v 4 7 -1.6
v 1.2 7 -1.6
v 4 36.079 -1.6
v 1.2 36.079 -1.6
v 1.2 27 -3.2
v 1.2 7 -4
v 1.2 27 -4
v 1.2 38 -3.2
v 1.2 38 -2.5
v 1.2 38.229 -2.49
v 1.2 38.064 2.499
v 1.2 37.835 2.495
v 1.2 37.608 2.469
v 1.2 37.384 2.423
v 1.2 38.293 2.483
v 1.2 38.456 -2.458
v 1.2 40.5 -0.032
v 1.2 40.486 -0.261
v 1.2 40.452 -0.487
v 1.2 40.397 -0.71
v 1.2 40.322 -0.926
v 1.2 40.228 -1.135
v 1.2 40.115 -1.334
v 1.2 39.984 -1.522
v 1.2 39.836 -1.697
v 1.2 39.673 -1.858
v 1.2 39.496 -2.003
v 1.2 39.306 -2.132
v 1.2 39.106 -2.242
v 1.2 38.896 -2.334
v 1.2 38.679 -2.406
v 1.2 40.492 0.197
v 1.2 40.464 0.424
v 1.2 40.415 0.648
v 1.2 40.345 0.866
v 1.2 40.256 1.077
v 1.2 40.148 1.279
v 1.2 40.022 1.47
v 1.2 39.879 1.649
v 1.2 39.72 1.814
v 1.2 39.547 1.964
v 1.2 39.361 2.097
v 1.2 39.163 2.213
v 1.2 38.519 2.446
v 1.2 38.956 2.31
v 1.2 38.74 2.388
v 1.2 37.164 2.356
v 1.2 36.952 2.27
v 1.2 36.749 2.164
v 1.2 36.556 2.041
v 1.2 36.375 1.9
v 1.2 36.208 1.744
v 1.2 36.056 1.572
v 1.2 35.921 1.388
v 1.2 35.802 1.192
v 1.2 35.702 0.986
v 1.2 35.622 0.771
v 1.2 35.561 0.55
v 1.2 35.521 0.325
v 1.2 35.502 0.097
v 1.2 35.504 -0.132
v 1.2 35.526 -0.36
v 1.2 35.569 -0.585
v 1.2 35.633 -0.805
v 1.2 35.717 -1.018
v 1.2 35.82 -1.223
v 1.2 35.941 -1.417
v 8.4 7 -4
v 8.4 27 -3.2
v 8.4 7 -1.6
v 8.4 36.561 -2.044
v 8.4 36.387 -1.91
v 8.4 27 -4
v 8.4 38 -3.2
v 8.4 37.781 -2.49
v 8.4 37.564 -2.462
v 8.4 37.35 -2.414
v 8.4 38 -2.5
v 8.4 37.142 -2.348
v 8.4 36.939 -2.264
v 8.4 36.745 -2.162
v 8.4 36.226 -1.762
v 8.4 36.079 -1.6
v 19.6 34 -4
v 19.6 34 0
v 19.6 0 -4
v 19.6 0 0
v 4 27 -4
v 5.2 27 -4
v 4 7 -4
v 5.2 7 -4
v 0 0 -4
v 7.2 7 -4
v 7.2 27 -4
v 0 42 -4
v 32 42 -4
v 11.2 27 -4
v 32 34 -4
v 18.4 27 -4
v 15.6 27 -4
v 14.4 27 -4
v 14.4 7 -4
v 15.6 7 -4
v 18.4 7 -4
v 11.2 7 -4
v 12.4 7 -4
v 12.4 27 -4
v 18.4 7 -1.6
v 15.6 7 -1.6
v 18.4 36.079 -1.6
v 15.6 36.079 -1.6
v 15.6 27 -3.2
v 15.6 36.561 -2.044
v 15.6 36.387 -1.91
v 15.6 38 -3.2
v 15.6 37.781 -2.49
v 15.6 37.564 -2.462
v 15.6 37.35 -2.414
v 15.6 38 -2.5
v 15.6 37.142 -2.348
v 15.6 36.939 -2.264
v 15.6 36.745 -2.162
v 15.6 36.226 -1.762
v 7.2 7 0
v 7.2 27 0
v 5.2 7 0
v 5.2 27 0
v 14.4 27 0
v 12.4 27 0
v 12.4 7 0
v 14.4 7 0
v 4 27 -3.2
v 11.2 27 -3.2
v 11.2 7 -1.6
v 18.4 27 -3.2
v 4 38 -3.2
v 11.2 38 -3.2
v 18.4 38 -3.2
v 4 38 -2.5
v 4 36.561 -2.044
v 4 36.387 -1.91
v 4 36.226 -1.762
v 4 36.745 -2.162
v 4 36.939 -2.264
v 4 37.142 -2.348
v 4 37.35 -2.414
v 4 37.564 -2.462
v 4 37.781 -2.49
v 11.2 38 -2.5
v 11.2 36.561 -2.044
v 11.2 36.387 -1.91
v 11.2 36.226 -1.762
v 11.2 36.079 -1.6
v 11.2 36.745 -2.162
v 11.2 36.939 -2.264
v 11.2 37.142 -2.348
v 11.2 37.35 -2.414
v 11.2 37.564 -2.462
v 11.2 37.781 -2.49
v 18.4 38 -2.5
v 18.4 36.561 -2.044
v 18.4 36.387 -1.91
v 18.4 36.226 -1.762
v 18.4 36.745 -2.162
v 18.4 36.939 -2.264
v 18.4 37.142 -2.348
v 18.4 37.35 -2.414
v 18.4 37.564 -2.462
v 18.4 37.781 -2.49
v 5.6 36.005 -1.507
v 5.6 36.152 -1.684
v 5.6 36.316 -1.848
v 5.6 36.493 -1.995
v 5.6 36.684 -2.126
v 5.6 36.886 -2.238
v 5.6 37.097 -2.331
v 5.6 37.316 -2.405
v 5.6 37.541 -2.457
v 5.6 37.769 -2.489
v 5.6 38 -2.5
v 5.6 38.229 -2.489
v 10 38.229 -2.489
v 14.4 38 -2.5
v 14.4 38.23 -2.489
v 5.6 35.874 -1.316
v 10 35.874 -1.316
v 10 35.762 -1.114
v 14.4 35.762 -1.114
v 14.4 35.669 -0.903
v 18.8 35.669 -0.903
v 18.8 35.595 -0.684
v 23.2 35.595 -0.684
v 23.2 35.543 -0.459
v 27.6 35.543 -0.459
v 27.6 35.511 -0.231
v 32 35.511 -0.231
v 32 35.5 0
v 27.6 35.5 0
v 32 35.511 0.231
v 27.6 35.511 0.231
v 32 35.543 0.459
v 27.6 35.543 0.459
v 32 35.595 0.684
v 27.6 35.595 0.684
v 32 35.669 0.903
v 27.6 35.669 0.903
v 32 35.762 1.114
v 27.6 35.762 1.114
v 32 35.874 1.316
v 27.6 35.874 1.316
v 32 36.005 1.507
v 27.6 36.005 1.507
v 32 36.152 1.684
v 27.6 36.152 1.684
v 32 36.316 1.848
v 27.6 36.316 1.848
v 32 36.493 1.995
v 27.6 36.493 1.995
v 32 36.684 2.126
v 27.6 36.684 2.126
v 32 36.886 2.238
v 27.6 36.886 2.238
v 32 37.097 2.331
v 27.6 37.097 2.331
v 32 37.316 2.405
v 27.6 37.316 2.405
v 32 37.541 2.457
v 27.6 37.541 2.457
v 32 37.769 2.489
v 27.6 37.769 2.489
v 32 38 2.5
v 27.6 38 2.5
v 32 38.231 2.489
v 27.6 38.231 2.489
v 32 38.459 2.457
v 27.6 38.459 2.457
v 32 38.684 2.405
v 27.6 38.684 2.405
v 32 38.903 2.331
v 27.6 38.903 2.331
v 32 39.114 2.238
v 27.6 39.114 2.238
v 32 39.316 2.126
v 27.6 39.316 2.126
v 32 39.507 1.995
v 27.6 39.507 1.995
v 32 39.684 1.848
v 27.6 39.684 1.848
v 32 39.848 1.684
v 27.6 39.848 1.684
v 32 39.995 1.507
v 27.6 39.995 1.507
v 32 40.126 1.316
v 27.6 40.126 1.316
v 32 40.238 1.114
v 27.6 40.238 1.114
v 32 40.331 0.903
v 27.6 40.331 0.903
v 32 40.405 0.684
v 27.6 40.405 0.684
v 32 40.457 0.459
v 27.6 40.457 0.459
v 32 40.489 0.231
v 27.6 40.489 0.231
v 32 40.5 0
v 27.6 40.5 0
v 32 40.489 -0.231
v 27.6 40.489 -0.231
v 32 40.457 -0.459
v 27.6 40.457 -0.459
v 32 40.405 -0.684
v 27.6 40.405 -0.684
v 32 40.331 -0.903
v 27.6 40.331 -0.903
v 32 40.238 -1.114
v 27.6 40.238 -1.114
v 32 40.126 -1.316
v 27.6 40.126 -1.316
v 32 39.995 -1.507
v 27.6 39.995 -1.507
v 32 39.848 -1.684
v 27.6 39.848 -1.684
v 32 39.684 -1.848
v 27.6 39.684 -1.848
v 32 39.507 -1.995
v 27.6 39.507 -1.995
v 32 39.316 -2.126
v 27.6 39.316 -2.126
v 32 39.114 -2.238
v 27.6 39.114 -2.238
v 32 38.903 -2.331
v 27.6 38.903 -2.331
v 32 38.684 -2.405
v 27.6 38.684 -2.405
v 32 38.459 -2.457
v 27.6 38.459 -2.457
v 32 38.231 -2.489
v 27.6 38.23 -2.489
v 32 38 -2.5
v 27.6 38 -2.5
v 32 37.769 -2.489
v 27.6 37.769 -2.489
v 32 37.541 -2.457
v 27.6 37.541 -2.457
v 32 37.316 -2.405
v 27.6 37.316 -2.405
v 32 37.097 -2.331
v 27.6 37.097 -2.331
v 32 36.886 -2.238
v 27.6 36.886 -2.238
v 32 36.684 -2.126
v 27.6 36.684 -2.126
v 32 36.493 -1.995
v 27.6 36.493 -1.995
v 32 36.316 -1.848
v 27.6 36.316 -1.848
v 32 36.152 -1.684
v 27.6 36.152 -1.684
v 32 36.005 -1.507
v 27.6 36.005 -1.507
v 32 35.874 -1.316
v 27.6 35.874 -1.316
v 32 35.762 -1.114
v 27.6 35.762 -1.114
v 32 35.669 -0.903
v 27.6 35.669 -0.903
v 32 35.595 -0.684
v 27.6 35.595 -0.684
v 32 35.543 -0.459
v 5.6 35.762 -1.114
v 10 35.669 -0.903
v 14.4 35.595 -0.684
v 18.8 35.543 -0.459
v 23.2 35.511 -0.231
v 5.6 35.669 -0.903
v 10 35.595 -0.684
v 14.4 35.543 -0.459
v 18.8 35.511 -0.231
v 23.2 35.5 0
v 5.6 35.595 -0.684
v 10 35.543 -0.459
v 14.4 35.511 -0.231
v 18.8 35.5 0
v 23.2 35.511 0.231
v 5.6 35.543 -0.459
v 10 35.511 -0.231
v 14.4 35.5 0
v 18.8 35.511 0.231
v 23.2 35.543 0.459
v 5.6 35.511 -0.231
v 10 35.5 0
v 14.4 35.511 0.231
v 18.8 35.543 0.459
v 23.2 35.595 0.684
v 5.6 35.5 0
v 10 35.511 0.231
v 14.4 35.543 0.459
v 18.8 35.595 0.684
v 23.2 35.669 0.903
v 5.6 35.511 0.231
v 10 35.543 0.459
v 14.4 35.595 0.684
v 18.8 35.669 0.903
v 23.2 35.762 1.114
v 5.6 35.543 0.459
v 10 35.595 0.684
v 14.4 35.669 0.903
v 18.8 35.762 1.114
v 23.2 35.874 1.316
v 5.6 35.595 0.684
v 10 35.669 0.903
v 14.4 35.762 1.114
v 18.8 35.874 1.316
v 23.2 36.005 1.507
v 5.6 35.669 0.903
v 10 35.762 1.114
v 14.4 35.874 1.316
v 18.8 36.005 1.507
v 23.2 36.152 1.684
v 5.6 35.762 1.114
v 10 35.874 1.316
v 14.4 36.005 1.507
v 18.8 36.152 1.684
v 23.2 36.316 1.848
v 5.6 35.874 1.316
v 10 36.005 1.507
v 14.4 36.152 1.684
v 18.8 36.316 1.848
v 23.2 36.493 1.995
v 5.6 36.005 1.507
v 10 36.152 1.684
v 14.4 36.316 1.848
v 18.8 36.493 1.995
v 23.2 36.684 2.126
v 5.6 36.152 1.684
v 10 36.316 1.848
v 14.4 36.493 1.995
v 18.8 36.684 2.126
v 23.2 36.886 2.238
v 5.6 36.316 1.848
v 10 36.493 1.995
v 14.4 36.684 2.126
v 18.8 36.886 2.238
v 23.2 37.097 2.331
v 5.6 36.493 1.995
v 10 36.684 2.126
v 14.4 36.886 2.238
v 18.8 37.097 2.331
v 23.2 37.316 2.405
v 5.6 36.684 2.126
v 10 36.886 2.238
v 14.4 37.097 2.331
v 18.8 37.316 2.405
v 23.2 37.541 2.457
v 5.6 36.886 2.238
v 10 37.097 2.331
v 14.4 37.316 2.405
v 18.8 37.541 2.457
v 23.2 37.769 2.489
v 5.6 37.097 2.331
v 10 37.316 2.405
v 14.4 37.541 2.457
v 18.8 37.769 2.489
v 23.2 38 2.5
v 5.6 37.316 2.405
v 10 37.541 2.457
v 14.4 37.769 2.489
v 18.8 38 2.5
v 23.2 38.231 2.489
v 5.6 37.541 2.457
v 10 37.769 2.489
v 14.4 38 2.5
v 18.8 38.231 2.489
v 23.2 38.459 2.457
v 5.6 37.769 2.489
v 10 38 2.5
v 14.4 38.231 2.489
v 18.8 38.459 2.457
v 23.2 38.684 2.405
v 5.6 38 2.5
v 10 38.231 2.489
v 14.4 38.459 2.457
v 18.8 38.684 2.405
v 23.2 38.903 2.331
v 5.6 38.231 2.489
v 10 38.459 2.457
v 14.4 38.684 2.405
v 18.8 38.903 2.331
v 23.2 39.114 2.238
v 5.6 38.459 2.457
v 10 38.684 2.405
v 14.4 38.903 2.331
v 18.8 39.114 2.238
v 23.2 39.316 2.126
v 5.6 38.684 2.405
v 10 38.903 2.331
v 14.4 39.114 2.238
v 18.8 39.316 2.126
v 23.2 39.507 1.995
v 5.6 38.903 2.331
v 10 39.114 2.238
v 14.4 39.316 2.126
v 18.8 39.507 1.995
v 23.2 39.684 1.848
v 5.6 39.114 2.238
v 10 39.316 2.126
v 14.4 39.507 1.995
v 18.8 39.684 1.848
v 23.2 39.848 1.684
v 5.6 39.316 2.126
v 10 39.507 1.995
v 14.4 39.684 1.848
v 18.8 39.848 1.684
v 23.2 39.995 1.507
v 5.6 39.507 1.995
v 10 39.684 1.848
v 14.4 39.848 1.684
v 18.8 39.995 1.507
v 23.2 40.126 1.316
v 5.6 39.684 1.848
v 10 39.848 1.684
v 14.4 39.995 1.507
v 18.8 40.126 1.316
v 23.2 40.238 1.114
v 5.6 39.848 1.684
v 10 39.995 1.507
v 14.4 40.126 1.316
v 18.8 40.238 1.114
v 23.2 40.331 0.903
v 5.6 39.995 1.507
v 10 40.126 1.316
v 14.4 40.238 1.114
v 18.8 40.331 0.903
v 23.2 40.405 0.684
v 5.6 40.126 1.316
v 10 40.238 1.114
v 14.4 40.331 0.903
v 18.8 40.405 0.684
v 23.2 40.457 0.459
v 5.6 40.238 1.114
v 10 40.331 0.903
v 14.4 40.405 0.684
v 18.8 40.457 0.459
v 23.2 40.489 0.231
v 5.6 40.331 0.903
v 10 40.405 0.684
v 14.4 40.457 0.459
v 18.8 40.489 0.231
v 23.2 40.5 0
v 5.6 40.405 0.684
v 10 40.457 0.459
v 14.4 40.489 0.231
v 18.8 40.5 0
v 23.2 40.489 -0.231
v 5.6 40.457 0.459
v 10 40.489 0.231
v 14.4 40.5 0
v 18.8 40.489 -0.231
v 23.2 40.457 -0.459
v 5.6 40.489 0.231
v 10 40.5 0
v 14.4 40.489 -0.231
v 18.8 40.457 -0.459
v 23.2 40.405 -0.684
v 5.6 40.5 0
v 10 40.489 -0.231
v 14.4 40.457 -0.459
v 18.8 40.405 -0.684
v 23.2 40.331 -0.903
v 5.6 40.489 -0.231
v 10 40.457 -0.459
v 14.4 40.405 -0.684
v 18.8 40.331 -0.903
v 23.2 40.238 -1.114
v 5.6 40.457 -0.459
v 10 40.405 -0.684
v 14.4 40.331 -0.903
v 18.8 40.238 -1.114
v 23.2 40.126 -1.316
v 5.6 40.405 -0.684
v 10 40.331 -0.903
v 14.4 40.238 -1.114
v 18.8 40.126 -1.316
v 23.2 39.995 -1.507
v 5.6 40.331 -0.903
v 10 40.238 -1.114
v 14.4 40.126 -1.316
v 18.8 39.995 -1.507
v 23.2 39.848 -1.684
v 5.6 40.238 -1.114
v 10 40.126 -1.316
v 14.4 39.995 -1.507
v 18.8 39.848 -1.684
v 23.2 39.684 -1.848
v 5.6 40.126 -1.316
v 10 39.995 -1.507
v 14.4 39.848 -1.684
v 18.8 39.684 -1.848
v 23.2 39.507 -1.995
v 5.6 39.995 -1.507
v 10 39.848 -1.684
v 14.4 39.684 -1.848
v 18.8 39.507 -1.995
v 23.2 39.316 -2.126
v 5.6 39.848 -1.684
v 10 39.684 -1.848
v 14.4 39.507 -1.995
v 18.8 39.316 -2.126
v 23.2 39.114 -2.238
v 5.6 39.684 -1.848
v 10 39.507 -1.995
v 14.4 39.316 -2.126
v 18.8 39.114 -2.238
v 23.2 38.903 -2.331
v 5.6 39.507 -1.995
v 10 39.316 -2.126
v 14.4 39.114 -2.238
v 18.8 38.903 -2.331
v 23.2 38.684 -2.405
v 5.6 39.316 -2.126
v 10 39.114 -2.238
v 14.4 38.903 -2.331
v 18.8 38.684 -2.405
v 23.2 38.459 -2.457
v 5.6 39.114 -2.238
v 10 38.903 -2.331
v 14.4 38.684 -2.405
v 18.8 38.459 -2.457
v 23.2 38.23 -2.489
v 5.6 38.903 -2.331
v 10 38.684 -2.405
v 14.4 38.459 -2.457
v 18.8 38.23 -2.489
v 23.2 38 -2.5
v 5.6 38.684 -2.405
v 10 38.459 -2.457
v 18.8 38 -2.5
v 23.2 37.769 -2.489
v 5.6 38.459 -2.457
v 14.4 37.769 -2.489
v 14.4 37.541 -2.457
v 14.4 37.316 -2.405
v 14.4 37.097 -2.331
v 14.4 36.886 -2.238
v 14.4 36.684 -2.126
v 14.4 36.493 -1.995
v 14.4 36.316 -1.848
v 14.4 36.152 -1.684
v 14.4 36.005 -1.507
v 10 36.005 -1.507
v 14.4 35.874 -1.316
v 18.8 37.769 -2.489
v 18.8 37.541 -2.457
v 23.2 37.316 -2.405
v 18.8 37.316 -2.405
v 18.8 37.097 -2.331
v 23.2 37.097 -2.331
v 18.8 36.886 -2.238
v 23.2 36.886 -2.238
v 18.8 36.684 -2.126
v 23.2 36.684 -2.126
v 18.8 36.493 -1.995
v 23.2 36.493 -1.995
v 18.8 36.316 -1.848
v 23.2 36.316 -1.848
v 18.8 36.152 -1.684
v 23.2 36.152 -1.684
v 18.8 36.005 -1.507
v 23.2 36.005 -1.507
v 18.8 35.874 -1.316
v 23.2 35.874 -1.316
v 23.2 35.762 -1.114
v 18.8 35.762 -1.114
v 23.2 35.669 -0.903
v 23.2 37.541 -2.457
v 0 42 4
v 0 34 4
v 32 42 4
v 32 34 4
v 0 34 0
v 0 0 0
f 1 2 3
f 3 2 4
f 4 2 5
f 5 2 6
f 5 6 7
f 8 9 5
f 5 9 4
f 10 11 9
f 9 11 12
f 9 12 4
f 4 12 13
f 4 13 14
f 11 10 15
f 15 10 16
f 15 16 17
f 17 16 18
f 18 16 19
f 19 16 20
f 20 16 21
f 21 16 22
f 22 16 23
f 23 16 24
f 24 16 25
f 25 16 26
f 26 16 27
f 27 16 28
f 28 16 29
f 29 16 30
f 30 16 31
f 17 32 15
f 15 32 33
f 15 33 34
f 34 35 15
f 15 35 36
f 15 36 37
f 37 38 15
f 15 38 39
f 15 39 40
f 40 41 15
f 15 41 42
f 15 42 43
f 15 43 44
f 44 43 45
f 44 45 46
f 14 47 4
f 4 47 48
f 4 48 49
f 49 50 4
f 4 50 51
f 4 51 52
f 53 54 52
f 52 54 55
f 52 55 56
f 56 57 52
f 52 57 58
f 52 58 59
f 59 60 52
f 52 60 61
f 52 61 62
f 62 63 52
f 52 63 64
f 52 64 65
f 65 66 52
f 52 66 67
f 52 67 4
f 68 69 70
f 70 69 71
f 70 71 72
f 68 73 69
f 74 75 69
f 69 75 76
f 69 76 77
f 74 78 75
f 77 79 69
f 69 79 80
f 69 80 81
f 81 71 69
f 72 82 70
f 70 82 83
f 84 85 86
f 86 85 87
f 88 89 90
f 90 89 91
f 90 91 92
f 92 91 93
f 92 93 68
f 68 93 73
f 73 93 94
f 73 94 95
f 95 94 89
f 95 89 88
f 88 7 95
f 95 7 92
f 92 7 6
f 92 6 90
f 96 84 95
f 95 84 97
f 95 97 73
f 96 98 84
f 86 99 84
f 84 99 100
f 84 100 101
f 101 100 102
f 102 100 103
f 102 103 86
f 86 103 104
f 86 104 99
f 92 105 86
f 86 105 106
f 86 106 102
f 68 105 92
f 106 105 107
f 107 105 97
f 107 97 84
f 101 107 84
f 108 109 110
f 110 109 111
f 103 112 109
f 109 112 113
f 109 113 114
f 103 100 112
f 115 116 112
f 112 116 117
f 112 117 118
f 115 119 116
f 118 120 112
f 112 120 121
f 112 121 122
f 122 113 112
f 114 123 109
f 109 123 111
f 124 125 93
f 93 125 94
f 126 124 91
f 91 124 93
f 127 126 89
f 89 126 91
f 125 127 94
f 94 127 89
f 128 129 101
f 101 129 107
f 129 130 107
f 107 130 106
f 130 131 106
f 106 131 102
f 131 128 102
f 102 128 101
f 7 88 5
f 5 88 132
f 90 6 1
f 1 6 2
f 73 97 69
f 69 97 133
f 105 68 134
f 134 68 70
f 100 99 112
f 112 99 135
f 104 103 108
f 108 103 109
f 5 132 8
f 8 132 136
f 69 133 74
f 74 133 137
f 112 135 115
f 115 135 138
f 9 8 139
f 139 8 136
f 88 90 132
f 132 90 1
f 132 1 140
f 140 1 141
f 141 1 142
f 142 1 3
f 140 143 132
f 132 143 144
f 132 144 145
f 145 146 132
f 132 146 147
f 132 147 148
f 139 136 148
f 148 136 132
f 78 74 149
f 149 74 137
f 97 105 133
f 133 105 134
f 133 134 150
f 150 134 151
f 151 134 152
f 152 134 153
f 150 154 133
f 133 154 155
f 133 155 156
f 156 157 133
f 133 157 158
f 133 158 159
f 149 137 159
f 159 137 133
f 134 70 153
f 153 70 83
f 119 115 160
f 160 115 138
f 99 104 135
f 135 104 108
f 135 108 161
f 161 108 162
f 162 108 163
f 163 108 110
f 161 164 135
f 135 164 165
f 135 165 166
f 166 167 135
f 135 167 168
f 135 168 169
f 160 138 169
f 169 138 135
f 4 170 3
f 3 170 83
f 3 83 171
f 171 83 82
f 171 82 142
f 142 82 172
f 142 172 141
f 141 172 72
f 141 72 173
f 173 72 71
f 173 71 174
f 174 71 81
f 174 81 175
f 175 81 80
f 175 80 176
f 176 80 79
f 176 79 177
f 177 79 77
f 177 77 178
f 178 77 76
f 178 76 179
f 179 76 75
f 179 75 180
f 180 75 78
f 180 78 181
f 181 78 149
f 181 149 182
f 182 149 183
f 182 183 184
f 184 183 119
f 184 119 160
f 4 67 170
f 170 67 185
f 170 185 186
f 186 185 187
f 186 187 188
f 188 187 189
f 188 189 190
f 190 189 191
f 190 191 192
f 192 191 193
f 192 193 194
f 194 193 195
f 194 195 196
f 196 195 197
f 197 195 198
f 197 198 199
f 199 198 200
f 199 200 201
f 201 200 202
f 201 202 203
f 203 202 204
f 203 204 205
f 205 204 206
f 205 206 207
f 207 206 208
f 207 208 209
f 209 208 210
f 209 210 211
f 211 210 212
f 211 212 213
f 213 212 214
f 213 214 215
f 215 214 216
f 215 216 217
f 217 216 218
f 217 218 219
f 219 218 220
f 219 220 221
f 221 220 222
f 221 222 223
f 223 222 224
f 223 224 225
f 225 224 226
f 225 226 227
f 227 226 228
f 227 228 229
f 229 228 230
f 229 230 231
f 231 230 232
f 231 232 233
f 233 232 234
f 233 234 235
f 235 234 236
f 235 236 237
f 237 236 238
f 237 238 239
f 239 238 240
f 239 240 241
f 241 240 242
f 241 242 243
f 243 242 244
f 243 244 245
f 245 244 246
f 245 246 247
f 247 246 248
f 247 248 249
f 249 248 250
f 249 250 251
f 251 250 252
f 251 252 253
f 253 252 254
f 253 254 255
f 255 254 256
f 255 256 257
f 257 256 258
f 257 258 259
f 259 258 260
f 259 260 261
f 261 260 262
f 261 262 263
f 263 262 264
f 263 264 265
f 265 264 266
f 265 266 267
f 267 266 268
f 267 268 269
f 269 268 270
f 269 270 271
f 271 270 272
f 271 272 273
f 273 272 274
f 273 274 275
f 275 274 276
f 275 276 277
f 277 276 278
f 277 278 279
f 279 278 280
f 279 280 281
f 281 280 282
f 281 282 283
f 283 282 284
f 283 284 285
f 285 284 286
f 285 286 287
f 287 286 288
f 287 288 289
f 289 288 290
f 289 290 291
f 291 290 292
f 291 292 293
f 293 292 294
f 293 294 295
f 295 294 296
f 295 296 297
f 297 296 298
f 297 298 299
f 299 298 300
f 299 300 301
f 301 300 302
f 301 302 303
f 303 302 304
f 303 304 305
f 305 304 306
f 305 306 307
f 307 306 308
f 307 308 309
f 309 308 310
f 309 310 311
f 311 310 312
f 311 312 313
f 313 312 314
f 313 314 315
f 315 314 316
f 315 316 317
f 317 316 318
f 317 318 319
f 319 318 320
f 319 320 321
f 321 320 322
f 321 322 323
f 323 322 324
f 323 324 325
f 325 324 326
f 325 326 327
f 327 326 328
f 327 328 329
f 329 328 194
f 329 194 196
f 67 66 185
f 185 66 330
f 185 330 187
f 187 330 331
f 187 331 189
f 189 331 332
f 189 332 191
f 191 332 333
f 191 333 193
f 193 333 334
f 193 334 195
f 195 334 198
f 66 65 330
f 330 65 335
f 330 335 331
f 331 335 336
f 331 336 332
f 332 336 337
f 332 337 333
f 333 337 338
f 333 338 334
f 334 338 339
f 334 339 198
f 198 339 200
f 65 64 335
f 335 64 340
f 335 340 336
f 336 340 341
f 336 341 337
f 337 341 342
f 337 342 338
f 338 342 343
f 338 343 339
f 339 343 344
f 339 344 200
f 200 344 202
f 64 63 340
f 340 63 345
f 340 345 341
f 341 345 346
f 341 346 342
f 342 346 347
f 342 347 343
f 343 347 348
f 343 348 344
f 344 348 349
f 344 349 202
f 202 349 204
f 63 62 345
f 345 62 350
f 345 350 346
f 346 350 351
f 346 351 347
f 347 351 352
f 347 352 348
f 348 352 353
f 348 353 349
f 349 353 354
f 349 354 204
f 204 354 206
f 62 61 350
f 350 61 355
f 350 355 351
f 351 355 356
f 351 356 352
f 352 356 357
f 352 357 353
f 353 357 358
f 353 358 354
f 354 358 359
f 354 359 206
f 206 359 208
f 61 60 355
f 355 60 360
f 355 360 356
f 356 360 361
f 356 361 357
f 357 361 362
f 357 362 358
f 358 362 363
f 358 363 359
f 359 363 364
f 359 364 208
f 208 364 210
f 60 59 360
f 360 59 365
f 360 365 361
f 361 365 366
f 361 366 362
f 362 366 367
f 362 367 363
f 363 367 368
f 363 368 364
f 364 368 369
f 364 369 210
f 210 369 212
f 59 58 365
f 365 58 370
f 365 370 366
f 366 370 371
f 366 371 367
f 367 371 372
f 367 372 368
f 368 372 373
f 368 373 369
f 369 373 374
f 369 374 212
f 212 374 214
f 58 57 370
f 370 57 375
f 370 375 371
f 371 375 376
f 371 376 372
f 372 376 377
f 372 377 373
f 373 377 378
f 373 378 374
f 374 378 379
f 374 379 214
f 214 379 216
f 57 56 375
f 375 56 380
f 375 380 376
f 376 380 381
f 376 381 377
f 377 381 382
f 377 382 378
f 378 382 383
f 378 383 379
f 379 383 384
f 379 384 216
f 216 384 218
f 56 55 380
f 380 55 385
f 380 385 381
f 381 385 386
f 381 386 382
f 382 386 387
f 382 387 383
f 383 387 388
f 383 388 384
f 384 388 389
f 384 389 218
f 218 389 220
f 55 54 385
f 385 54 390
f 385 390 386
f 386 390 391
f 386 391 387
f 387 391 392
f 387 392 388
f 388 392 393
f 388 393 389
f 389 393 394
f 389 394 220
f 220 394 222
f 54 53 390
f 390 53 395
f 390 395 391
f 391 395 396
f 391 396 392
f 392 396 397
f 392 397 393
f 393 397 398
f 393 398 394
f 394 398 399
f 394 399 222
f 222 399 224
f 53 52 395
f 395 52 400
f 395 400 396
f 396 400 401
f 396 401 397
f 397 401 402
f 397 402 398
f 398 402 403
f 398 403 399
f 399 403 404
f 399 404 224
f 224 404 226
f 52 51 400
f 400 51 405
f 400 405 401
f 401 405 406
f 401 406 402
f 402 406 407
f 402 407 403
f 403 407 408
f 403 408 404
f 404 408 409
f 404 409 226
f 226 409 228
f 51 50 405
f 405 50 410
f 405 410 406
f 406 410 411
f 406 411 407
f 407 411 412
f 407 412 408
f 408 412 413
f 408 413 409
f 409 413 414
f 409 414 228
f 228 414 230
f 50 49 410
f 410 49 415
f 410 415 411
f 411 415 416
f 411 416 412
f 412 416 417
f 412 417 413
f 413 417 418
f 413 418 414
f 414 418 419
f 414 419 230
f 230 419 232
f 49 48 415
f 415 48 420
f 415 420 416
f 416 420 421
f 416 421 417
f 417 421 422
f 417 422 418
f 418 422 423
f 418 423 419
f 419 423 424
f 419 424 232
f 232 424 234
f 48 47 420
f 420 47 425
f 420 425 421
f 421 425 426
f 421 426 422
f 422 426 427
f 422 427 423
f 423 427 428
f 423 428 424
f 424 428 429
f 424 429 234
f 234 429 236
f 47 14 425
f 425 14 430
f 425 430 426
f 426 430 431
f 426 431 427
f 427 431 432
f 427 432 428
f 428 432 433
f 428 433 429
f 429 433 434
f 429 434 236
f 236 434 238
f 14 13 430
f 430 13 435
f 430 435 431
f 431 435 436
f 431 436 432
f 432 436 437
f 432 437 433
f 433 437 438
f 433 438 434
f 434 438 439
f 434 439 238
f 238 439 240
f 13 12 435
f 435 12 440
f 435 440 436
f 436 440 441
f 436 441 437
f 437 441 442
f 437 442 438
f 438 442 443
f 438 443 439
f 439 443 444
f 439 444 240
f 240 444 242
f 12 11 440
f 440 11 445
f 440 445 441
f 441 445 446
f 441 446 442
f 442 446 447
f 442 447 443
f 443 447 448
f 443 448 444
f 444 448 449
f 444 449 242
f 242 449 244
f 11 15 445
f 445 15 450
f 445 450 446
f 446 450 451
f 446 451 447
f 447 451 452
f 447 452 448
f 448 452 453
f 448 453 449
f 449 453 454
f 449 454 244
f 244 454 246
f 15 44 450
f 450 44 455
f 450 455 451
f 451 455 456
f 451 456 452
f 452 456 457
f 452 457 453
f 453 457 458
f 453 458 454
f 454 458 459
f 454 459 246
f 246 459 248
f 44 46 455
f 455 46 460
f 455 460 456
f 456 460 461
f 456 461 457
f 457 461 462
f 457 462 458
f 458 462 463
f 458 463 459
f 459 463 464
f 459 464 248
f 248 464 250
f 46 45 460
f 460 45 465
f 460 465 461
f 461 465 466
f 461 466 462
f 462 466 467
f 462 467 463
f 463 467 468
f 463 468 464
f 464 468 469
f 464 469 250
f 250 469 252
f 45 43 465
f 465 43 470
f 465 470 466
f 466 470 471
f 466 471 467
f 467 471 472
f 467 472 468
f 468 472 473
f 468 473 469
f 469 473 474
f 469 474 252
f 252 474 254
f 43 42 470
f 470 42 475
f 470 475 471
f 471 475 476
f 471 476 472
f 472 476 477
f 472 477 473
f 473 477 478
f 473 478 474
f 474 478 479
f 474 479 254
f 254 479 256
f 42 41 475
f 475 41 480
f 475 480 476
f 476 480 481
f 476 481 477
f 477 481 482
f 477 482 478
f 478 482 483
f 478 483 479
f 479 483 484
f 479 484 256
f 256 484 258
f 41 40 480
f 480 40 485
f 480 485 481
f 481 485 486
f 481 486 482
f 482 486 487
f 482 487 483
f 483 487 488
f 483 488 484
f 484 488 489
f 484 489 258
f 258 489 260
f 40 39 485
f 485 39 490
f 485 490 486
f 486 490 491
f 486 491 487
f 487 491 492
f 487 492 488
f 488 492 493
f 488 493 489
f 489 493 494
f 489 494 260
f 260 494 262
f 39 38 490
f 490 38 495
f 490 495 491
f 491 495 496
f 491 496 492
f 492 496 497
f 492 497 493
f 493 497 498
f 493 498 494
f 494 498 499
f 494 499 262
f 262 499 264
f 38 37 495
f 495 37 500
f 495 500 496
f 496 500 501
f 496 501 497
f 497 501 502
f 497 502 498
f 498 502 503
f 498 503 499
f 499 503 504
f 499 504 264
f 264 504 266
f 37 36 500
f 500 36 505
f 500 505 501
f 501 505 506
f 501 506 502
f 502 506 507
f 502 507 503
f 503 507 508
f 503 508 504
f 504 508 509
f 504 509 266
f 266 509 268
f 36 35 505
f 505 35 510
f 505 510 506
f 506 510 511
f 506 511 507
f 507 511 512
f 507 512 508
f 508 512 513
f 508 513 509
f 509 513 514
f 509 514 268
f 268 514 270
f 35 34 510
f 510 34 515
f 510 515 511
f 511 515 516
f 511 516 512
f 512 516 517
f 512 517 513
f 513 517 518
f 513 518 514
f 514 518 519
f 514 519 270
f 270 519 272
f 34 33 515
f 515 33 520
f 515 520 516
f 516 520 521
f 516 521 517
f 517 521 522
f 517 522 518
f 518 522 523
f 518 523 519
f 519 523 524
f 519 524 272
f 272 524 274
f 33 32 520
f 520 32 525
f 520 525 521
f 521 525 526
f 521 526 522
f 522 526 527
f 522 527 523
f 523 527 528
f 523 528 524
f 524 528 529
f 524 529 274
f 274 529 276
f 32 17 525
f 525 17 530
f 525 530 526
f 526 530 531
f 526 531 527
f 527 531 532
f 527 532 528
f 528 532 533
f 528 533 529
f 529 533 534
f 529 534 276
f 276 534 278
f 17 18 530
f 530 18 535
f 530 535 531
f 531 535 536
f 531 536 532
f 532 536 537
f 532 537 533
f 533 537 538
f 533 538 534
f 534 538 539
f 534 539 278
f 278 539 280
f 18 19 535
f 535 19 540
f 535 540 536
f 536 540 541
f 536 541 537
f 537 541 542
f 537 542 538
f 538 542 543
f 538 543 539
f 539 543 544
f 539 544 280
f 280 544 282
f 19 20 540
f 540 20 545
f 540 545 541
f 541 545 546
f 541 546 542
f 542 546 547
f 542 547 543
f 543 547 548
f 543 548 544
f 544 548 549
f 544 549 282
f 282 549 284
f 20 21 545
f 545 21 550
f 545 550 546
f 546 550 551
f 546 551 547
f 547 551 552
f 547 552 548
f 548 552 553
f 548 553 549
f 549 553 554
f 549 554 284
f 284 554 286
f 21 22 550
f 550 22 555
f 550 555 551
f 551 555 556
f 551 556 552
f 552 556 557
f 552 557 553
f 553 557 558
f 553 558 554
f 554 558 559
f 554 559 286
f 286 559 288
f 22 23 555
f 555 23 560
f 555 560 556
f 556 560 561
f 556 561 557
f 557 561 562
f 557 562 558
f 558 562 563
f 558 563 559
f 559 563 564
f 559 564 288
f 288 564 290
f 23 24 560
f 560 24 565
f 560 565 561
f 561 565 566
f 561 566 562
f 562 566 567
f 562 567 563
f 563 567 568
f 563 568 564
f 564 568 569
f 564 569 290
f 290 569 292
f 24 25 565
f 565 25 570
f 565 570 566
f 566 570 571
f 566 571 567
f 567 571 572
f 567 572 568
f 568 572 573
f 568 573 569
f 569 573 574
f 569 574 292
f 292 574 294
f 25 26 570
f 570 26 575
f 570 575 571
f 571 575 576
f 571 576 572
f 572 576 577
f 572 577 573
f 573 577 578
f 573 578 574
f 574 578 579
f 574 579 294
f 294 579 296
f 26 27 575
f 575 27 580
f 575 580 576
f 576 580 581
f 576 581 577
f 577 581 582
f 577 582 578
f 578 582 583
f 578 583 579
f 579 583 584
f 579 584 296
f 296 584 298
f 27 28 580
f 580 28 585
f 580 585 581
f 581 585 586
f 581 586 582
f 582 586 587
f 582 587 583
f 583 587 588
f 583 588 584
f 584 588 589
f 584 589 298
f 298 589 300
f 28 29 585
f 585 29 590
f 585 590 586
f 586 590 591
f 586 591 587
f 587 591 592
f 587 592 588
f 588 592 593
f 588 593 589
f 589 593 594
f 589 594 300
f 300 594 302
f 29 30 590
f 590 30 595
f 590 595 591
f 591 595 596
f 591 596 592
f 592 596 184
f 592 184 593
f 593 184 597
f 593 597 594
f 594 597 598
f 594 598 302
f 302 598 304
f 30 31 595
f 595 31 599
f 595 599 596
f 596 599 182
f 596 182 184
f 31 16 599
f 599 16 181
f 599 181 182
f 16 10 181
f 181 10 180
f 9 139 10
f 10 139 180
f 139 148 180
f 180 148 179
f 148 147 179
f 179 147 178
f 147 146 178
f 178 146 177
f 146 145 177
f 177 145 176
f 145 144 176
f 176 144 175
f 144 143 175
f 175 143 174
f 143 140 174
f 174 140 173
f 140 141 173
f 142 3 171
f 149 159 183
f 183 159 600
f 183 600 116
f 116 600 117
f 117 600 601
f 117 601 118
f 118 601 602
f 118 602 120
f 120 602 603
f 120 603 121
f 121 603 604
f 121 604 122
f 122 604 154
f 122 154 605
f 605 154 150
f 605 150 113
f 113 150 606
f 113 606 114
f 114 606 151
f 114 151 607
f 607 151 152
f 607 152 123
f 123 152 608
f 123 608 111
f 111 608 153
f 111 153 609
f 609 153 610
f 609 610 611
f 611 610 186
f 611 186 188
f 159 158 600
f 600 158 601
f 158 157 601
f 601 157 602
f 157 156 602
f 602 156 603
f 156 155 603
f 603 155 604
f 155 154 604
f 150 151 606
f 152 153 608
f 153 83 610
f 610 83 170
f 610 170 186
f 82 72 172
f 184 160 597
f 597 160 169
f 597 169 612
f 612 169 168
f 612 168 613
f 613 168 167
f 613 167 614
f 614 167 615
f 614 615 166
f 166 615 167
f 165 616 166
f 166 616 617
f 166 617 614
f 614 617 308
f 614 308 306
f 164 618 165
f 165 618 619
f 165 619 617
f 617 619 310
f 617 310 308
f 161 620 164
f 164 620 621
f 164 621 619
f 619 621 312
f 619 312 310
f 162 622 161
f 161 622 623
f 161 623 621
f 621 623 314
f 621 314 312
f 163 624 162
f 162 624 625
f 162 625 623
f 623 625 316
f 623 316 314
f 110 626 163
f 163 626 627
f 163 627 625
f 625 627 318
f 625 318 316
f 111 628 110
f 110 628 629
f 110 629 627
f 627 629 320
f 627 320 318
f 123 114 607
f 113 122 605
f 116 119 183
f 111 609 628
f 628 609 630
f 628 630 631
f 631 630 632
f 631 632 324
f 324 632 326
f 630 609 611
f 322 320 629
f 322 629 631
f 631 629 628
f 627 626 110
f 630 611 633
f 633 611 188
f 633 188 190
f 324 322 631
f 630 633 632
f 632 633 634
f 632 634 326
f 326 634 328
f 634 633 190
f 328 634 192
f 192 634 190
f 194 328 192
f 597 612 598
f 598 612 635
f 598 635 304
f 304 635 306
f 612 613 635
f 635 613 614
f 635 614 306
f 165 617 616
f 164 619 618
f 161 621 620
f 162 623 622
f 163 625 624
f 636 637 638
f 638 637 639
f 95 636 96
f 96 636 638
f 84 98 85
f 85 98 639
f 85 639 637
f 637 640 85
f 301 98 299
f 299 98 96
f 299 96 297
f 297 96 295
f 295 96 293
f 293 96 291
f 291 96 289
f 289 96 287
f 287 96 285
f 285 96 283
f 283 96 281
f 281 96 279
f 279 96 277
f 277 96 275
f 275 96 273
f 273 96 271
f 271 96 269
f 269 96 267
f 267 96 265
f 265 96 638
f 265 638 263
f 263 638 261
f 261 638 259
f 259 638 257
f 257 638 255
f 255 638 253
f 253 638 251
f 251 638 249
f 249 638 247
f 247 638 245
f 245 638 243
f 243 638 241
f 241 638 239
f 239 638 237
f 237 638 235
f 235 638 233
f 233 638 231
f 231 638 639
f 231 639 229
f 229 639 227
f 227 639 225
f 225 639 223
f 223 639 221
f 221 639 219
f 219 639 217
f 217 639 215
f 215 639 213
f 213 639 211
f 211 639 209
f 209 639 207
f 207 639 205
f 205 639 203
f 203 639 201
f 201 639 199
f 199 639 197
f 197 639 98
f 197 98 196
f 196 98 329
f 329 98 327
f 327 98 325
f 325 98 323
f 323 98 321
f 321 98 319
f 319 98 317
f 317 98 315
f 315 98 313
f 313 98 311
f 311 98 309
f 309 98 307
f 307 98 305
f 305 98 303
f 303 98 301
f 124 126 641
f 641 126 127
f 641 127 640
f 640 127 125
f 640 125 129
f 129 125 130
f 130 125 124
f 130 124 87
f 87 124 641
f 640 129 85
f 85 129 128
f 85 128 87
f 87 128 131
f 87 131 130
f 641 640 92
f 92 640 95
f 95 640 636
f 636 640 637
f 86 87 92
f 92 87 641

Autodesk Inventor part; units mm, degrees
ref_plane "YZ Plane" through (0, 0, 0) normal (1, 0, 0) x (0, 1, 0)
ref_plane "XZ Plane" through (0, 0, 0) normal (0, 1, 0) x (-1, 0, 0)
ref_plane "XY Plane" through (0, 0, 0) normal (0, 0, 1) x (1, 0, 0)
sketch "Sketch1" plane through (0, 0, 0) normal (0, 1, 0) x (-1, 0, 0)
  line L0 (0, 0) -> (-19.6, 0)
  line L1 (-19.6, 0) -> (-19.6, -4)
  line L2 (-19.6, -4) -> (0, -4)
  line L3 (0, -4) -> (0, 0)
  dimension "d0" = 4
  dimension "d1" = 19.6
extrude "Extrusion1" add sketch "Sketch1" along normal blind 34
sketch "Sketch2" plane through (0, 0, -4) normal (-1, 0, 0) x (0, 0, 1)
  line L0 (4, 34) -> (0, 34) projected
  line L1 (0, 34) -> (8, 34)
  line L2 (8, 34) -> (8, 42)
  line L3 (8, 42) -> (0, 42)
  line L4 (0, 42) -> (0, 34)
  line L5 (4, 0) -> (4, 34) projected
  dimension "d4" = 4
  dimension "d5" = 8
  dimension "d6" = 8
extrude "Extrusion2" add sketch "Sketch2" against normal blind 32
sketch "Sketch3" plane through (32, 0, -4) normal (1, 0, 0) x (0, 0, -1)
  circle A0 centre (-4, 38) radius 2.5
  line L0 (0, 42) -> (-8, 42) projected
  line L1 (-8, 42) -> (-8, 34) projected
  line L2 (0, 34) -> (0, 42) projected
  line L3 (-8, 34) -> (0, 34) projected
  point P0 (-4, 0)
  dimension "d9" = 4
  dimension "d10" = 4
  dimension "d11" = 4
  dimension "d12" = 4
  dimension "d13" = 5
extrude "Extrusion3" cut sketch "Sketch3" against normal blind 30.8 contours A0
sketch "Sketch4" plane through (0, 0, 0) normal (0, -1, 0) x (1, 0, 0)
  line L0 (18.4, -3.2) -> (15.6, -3.2)
  line L1 (15.6, -3.2) -> (15.6, -1.6)
  line L2 (15.6, -1.6) -> (18.4, -1.6)
  line L3 (18.4, -1.6) -> (18.4, -3.2)
  line L4 (11.2, -3.2) -> (8.4, -3.2)
  line L5 (8.4, -3.2) -> (8.4, -1.6)
  line L6 (8.4, -1.6) -> (11.2, -1.6)
  line L7 (11.2, -1.6) -> (11.2, -3.2)
  line L8 (4, -3.2) -> (1.2, -3.2)
  line L9 (1.2, -3.2) -> (1.2, -1.6)
  line L10 (1.2, -1.6) -> (4, -1.6)
  line L11 (4, -1.6) -> (4, -3.2)
  line L12 (19.6, 0) -> (19.6, -4) projected
  line L13 (19.6, -4) -> (0, -4) projected
  line L14 (0, 0) -> (19.6, 0) projected
  line L15 (0, -4) -> (0, 0) projected
  dimension "d16" = 2.8
  dimension "d17" = 1.2
  dimension "d18" = 0.8
  dimension "d19" = 1.6
  dimension "d20" = 1.6
  dimension "d21" = 2.8
  dimension "d22" = 2.8
  dimension "d23" = 4.4
  dimension "d24" = 1.2
  dimension "d25" = 4.4
extrude "Extrusion4" cut sketch "Sketch4" against normal blind 38 contours L0 L1 L2 L3 | L4 L5 L6 L7 | L8 L9 L10 L11
sketch "Sketch5" plane through (19.6, 0, -4) normal (0, 0, -1) x (-1, 0, 0)
  line L0 (1.2, 0) -> (1.2, 38) projected
  line L1 (4, 0) -> (4, 38) projected
  line L2 (1.2, 27) -> (4, 27)
  line L3 (4, 27) -> (4, 7)
  line L4 (4, 7) -> (1.2, 7)
  line L5 (1.2, 7) -> (1.2, 27)
  line L6 (8.4, 0) -> (8.4, 36.0791) projected
  line L7 (11.2, 0) -> (11.2, 38) projected
  line L8 (8.4, 27) -> (11.2, 27)
  line L9 (11.2, 27) -> (11.2, 7)
  line L10 (11.2, 7) -> (8.4, 7)
  line L11 (8.4, 7) -> (8.4, 27)
  line L12 (15.6, 0) -> (15.6, 36.0791) projected
  line L13 (15.6, 27) -> (18.4, 27)
  line L14 (18.4, 27) -> (18.4, 7)
  line L15 (18.4, 7) -> (15.6, 7)
  line L16 (15.6, 7) -> (15.6, 27)
  line L17 (0, 0) -> (19.6, 0) projected
  line L18 (0, 34) -> (-12.4, 34) projected
  line L19 (19.6, 0) -> (19.6, 42) projected
  point P0 (18.4, 0)
  point P1 (15.6, 7)
  point P2 (8.4, 7)
  point P3 (1.2, 7)
  point P4 (4, 27)
  dimension "d28" = 7
  dimension "d29" = 20
  dimension "d30" = 7
  dimension "d49" = 1.2
extrude "Extrusion5" cut sketch "Sketch5" against normal blind 0.8 contours L12 L13 L14 L15 | L0 L2 L1 L4 | L6 L8 L7 L10
sketch "Sketch6" plane through (19.6, 0, -4) normal (0, 0, -1) x (-1, 0, 0)
  line L0 (5.2, 27) -> (7.2, 27)
  line L1 (7.2, 27) -> (7.2, 7)
  line L2 (7.2, 7) -> (5.2, 7)
  line L3 (5.2, 7) -> (5.2, 27)
  line L4 (12.4, 27) -> (14.4, 27)
  line L5 (14.4, 27) -> (14.4, 7)
  line L6 (14.4, 7) -> (12.4, 7)
  line L7 (12.4, 7) -> (12.4, 27)
  line L8 (4, 27) -> (4, 7) projected
  line L9 (8.4, 7) -> (8.4, 27) projected
  line L10 (11.2, 27) -> (11.2, 7) projected
  line L11 (15.6, 7) -> (15.6, 27) projected
  line L12 (19.6, 0) -> (19.6, 42) projected
  line L13 (0, 0) -> (0, 34) projected
  dimension "d33" = 1.2
  dimension "d34" = 1.2
  dimension "d35" = 1.2
  dimension "d36" = 1.2
  dimension "d37" = 2
  dimension "d38" = 2
  dimension "d39" = 19.6
extrude "Extrusion6" cut sketch "Sketch6" against normal up to surface (4 mm away)
sketch "Sketch7" plane through (0, 0, 0) normal (0, -1, 0) x (1, 0, 0)
  line L0 (19.6, -4) -> (32, -4) projected
  line L1 (0, 0) -> (19.6, 0) projected
  line L2 (19.6, -4) -> (0, -4)
  line L3 (0, -4) -> (0, 0)
  line L4 (0, 0) -> (19.6, 0)
  line L5 (19.6, 0) -> (19.6, -4)
extrude "Extrusion7" add sketch "Sketch7" against normal blind 7
properties part number "20210811_H2_gasmanifold_old_v1"
